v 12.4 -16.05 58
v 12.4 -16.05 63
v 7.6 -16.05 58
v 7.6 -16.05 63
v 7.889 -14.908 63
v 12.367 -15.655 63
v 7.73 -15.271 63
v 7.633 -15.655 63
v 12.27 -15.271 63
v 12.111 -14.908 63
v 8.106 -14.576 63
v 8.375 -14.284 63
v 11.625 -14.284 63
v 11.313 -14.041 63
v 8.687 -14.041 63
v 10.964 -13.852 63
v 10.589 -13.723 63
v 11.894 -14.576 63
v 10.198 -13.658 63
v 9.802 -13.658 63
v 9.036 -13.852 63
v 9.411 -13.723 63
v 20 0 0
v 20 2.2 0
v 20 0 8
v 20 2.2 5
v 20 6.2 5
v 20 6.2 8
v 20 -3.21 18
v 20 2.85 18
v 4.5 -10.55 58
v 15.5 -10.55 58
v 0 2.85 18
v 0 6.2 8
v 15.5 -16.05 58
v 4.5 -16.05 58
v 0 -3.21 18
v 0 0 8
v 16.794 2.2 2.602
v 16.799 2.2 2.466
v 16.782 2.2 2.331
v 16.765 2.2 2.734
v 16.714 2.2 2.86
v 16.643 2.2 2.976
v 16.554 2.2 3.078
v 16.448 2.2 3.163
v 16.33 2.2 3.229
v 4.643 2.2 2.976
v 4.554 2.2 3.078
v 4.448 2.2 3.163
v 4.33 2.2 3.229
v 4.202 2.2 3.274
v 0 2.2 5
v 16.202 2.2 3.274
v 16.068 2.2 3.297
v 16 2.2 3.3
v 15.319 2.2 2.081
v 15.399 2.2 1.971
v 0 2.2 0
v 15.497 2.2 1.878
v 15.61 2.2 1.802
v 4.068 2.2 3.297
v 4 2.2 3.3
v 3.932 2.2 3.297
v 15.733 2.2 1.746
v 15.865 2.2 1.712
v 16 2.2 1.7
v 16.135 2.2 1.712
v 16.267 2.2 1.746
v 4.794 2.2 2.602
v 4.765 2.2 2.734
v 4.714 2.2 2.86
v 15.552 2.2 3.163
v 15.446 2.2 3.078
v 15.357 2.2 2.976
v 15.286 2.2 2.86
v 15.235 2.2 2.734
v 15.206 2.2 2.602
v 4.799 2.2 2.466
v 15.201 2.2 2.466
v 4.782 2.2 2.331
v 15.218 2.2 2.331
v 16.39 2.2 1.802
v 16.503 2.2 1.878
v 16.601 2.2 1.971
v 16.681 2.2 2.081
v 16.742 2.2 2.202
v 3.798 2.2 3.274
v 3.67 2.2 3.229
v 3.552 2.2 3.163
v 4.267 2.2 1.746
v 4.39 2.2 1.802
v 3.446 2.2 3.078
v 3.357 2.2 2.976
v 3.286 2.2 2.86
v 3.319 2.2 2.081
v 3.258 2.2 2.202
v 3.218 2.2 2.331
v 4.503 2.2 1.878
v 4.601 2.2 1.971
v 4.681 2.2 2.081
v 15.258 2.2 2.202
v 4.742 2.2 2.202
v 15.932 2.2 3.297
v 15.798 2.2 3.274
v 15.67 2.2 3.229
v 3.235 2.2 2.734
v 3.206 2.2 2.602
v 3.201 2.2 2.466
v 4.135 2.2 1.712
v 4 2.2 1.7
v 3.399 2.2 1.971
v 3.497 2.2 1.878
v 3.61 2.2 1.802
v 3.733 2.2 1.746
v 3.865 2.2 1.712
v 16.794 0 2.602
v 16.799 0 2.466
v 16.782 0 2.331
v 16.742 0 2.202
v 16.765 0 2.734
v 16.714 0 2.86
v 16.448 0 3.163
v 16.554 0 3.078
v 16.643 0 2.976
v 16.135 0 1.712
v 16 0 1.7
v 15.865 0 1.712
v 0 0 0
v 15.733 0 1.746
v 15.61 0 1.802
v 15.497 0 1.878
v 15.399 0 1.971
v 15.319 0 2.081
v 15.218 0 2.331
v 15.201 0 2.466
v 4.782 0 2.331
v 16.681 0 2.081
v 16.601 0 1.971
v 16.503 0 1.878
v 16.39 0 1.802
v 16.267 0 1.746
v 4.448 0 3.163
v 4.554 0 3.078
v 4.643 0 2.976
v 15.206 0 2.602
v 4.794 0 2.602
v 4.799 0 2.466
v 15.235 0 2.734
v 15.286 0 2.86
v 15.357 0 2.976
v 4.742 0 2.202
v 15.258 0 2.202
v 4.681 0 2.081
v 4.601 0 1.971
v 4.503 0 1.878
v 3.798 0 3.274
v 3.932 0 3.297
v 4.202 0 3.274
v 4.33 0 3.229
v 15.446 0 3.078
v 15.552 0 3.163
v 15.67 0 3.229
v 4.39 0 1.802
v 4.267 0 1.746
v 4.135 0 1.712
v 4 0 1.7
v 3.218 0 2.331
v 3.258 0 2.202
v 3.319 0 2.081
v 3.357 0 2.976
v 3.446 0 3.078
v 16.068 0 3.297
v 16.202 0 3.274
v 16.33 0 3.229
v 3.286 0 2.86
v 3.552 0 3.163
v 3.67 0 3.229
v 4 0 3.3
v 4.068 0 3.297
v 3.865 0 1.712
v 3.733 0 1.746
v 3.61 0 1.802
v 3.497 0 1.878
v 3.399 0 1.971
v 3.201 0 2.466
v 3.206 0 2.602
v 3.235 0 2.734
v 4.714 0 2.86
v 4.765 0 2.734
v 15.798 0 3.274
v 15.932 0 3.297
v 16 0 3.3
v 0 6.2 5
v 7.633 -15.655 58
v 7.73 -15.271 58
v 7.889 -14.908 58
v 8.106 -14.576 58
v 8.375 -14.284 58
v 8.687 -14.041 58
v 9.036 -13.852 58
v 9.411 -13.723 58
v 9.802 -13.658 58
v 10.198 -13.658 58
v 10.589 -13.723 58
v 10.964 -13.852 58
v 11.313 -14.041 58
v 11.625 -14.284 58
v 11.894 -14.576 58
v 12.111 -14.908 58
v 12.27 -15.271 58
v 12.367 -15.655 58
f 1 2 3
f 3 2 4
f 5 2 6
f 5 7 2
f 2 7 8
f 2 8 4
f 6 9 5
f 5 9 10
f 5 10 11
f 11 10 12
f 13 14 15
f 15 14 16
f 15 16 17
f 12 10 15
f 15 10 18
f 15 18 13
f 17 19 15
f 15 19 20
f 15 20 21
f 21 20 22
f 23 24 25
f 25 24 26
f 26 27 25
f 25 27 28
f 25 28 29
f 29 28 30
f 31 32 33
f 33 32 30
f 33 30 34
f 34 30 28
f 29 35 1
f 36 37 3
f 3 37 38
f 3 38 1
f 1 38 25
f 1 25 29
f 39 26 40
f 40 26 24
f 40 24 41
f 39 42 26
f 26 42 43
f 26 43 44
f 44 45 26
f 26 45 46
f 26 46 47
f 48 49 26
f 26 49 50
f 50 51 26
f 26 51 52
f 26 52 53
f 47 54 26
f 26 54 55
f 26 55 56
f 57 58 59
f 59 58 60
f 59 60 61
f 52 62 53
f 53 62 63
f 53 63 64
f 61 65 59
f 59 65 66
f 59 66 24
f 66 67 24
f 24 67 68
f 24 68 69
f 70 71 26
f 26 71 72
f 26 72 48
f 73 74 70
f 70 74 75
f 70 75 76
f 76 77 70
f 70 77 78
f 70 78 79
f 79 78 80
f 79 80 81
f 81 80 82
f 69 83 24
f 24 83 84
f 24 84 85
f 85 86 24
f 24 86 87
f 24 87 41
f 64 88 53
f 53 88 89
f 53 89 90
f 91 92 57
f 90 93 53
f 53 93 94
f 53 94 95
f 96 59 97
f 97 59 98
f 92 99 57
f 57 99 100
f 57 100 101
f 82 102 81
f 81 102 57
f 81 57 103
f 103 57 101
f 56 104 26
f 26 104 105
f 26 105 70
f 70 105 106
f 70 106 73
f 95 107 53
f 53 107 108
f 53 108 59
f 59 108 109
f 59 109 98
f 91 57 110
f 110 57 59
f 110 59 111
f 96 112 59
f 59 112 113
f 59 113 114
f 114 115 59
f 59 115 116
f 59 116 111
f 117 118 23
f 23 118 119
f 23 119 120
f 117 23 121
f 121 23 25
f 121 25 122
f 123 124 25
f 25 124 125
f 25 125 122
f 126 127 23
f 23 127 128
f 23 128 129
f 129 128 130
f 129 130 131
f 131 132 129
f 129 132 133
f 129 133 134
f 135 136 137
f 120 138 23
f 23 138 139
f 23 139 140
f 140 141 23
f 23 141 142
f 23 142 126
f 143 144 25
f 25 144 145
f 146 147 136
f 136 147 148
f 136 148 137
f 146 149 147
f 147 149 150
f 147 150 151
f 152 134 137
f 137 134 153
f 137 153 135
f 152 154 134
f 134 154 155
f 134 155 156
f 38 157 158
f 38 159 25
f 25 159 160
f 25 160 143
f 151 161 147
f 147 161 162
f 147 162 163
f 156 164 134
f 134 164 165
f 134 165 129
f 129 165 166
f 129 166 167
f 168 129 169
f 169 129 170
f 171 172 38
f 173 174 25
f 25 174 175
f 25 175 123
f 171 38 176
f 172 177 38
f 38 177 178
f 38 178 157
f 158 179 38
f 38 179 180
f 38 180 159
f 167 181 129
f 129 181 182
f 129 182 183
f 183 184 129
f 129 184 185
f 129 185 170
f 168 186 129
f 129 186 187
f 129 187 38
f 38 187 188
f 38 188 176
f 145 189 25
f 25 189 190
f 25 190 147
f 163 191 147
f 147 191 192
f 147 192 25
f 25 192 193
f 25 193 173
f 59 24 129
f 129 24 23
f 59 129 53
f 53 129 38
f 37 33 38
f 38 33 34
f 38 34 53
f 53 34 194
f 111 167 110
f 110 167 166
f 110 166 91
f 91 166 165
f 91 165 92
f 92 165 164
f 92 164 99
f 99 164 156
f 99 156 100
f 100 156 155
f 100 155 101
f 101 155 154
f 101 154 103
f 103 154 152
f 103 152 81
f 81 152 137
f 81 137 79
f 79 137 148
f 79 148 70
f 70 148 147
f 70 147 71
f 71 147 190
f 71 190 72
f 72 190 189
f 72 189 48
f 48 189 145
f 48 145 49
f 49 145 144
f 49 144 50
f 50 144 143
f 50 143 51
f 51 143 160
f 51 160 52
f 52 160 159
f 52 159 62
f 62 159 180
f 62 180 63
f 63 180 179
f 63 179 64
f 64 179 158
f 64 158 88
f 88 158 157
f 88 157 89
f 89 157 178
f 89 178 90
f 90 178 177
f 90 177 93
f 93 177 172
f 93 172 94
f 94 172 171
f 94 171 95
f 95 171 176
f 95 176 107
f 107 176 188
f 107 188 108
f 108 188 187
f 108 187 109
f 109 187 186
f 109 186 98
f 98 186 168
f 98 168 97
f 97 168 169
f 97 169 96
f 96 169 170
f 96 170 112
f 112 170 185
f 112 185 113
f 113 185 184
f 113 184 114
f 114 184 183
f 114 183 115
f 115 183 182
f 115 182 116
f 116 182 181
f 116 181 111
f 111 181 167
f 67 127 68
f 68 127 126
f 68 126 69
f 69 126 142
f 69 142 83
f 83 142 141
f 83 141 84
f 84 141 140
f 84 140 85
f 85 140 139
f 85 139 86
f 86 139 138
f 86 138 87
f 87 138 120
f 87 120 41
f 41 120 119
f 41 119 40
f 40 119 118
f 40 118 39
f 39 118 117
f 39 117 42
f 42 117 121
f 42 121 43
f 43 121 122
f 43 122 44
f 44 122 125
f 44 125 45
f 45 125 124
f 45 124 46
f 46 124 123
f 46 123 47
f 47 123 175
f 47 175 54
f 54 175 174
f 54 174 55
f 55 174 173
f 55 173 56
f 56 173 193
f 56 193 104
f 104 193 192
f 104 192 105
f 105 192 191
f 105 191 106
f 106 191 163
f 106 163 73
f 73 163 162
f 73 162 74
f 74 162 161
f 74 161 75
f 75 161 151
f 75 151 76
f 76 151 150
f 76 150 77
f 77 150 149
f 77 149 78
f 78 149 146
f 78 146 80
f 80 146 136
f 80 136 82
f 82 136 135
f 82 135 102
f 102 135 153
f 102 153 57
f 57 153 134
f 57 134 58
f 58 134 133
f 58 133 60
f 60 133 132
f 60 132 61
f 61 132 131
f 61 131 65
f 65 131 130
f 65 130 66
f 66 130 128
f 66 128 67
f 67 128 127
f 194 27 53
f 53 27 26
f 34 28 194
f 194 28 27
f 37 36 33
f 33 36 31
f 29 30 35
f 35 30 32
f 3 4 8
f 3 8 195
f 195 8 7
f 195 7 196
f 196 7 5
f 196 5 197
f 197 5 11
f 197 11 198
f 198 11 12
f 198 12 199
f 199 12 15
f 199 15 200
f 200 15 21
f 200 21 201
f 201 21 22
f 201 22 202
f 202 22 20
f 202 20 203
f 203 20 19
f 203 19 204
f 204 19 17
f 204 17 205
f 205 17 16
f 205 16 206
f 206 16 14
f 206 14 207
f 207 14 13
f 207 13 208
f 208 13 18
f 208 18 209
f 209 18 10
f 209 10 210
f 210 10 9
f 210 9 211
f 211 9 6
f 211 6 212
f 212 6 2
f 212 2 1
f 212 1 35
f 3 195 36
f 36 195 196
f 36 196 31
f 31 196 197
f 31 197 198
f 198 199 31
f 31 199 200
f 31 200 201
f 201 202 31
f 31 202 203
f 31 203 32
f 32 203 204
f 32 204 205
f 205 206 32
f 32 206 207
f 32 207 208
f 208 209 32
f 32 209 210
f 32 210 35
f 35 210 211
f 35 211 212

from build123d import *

# Parameters (mm, degrees)
SKETCH_1_W          = 20
SKETCH_1_H          = 5
SKETCH_1_R          = 0.8
EXTRUDE_1_DEPTH     = 2.2
SKETCH_2_W          = 20
SKETCH_2_H          = 6.2
EXTRUDE_2_DEPTH     = 3
SKETCH_3_W          = 5
SKETCH_3_H          = 5.5
EXTRUDE_3_DEPTH     = 20
SKETCH_4_W          = 4.5
SKETCH_4_H          = 5
CUT_EXTRUDE_1_DEPTH = 70.742831173
CUT_EXTRUDE_2_DEPTH = 5


with BuildPart() as part:
    # 草图1 → 凸台-拉伸1 (new body)
    with BuildSketch(Plane(origin=(0, 0, 0), x_dir=(1, 0, 0), z_dir=(0, 1, 0))):
        with Locations((10, -2.5)):
            Rectangle(SKETCH_1_W, SKETCH_1_H)
        with Locations(Location((4, -2.5, 0), (0, 0, 270))):
            Circle(SKETCH_1_R, mode=Mode.SUBTRACT)
        with Locations(Location((16, -2.5, 0), (0, 0, 270))):
            Circle(SKETCH_1_R, mode=Mode.SUBTRACT)
    extrude(amount=EXTRUDE_1_DEPTH)

    # 草图2 → 凸台-拉伸2 (add)
    with BuildSketch(Plane.XY.offset(5)):
        with Locations((10, 3.1)):
            Rectangle(SKETCH_2_W, SKETCH_2_H)
    extrude(amount=EXTRUDE_2_DEPTH)

    # 草图3 → 凸台-拉伸3 (add, through all)
    with BuildSketch(Plane(origin=(20, 0, 0), x_dir=(0, 0, -1), z_dir=(1, 0, 0))):
        Polygon((-58, -10.55), (-58, -16.05), (-8, 0), (-8, 6.2), align=None)
        with Locations((-60.5, -13.3)):
            Rectangle(SKETCH_3_W, SKETCH_3_H)
    extrude(amount=-EXTRUDE_3_DEPTH)

    # 草图4 → 切除-拉伸1 (cut, through all)
    with BuildSketch(Plane(origin=(0, 6.2, 0), x_dir=(1, 0, 0), z_dir=(0, 1, 0))):
        Polygon((4.5, -58), (0, -18), (0, -58), align=None)
        Polygon((20, -58), (20, -18), (15.5, -58), align=None)
        with Locations((17.75, -60.5)):
            Rectangle(SKETCH_4_W, SKETCH_4_H)
        with Locations((2.25, -60.5)):
            Rectangle(SKETCH_4_W, SKETCH_4_H)
    extrude(amount=-CUT_EXTRUDE_1_DEPTH, mode=Mode.SUBTRACT)

    # 草图5 → 切除-拉伸2 (cut)
    with BuildSketch(Plane.XY.offset(63)):
        with BuildLine():
            Line((15.5, -10.55), (4.5, -10.55))
            Line((4.5, -10.55), (4.5, -16.05))
            Line((4.5, -16.05), (7.6, -16.05))
            ThreePointArc((7.6, -16.05), (10, -13.65), (12.4, -16.05))
            Line((12.4, -16.05), (15.5, -16.05))
            Line((15.5, -16.05), (15.5, -10.55))
        make_face()
    extrude(amount=-CUT_EXTRUDE_2_DEPTH, mode=Mode.SUBTRACT)


solid = part.part
